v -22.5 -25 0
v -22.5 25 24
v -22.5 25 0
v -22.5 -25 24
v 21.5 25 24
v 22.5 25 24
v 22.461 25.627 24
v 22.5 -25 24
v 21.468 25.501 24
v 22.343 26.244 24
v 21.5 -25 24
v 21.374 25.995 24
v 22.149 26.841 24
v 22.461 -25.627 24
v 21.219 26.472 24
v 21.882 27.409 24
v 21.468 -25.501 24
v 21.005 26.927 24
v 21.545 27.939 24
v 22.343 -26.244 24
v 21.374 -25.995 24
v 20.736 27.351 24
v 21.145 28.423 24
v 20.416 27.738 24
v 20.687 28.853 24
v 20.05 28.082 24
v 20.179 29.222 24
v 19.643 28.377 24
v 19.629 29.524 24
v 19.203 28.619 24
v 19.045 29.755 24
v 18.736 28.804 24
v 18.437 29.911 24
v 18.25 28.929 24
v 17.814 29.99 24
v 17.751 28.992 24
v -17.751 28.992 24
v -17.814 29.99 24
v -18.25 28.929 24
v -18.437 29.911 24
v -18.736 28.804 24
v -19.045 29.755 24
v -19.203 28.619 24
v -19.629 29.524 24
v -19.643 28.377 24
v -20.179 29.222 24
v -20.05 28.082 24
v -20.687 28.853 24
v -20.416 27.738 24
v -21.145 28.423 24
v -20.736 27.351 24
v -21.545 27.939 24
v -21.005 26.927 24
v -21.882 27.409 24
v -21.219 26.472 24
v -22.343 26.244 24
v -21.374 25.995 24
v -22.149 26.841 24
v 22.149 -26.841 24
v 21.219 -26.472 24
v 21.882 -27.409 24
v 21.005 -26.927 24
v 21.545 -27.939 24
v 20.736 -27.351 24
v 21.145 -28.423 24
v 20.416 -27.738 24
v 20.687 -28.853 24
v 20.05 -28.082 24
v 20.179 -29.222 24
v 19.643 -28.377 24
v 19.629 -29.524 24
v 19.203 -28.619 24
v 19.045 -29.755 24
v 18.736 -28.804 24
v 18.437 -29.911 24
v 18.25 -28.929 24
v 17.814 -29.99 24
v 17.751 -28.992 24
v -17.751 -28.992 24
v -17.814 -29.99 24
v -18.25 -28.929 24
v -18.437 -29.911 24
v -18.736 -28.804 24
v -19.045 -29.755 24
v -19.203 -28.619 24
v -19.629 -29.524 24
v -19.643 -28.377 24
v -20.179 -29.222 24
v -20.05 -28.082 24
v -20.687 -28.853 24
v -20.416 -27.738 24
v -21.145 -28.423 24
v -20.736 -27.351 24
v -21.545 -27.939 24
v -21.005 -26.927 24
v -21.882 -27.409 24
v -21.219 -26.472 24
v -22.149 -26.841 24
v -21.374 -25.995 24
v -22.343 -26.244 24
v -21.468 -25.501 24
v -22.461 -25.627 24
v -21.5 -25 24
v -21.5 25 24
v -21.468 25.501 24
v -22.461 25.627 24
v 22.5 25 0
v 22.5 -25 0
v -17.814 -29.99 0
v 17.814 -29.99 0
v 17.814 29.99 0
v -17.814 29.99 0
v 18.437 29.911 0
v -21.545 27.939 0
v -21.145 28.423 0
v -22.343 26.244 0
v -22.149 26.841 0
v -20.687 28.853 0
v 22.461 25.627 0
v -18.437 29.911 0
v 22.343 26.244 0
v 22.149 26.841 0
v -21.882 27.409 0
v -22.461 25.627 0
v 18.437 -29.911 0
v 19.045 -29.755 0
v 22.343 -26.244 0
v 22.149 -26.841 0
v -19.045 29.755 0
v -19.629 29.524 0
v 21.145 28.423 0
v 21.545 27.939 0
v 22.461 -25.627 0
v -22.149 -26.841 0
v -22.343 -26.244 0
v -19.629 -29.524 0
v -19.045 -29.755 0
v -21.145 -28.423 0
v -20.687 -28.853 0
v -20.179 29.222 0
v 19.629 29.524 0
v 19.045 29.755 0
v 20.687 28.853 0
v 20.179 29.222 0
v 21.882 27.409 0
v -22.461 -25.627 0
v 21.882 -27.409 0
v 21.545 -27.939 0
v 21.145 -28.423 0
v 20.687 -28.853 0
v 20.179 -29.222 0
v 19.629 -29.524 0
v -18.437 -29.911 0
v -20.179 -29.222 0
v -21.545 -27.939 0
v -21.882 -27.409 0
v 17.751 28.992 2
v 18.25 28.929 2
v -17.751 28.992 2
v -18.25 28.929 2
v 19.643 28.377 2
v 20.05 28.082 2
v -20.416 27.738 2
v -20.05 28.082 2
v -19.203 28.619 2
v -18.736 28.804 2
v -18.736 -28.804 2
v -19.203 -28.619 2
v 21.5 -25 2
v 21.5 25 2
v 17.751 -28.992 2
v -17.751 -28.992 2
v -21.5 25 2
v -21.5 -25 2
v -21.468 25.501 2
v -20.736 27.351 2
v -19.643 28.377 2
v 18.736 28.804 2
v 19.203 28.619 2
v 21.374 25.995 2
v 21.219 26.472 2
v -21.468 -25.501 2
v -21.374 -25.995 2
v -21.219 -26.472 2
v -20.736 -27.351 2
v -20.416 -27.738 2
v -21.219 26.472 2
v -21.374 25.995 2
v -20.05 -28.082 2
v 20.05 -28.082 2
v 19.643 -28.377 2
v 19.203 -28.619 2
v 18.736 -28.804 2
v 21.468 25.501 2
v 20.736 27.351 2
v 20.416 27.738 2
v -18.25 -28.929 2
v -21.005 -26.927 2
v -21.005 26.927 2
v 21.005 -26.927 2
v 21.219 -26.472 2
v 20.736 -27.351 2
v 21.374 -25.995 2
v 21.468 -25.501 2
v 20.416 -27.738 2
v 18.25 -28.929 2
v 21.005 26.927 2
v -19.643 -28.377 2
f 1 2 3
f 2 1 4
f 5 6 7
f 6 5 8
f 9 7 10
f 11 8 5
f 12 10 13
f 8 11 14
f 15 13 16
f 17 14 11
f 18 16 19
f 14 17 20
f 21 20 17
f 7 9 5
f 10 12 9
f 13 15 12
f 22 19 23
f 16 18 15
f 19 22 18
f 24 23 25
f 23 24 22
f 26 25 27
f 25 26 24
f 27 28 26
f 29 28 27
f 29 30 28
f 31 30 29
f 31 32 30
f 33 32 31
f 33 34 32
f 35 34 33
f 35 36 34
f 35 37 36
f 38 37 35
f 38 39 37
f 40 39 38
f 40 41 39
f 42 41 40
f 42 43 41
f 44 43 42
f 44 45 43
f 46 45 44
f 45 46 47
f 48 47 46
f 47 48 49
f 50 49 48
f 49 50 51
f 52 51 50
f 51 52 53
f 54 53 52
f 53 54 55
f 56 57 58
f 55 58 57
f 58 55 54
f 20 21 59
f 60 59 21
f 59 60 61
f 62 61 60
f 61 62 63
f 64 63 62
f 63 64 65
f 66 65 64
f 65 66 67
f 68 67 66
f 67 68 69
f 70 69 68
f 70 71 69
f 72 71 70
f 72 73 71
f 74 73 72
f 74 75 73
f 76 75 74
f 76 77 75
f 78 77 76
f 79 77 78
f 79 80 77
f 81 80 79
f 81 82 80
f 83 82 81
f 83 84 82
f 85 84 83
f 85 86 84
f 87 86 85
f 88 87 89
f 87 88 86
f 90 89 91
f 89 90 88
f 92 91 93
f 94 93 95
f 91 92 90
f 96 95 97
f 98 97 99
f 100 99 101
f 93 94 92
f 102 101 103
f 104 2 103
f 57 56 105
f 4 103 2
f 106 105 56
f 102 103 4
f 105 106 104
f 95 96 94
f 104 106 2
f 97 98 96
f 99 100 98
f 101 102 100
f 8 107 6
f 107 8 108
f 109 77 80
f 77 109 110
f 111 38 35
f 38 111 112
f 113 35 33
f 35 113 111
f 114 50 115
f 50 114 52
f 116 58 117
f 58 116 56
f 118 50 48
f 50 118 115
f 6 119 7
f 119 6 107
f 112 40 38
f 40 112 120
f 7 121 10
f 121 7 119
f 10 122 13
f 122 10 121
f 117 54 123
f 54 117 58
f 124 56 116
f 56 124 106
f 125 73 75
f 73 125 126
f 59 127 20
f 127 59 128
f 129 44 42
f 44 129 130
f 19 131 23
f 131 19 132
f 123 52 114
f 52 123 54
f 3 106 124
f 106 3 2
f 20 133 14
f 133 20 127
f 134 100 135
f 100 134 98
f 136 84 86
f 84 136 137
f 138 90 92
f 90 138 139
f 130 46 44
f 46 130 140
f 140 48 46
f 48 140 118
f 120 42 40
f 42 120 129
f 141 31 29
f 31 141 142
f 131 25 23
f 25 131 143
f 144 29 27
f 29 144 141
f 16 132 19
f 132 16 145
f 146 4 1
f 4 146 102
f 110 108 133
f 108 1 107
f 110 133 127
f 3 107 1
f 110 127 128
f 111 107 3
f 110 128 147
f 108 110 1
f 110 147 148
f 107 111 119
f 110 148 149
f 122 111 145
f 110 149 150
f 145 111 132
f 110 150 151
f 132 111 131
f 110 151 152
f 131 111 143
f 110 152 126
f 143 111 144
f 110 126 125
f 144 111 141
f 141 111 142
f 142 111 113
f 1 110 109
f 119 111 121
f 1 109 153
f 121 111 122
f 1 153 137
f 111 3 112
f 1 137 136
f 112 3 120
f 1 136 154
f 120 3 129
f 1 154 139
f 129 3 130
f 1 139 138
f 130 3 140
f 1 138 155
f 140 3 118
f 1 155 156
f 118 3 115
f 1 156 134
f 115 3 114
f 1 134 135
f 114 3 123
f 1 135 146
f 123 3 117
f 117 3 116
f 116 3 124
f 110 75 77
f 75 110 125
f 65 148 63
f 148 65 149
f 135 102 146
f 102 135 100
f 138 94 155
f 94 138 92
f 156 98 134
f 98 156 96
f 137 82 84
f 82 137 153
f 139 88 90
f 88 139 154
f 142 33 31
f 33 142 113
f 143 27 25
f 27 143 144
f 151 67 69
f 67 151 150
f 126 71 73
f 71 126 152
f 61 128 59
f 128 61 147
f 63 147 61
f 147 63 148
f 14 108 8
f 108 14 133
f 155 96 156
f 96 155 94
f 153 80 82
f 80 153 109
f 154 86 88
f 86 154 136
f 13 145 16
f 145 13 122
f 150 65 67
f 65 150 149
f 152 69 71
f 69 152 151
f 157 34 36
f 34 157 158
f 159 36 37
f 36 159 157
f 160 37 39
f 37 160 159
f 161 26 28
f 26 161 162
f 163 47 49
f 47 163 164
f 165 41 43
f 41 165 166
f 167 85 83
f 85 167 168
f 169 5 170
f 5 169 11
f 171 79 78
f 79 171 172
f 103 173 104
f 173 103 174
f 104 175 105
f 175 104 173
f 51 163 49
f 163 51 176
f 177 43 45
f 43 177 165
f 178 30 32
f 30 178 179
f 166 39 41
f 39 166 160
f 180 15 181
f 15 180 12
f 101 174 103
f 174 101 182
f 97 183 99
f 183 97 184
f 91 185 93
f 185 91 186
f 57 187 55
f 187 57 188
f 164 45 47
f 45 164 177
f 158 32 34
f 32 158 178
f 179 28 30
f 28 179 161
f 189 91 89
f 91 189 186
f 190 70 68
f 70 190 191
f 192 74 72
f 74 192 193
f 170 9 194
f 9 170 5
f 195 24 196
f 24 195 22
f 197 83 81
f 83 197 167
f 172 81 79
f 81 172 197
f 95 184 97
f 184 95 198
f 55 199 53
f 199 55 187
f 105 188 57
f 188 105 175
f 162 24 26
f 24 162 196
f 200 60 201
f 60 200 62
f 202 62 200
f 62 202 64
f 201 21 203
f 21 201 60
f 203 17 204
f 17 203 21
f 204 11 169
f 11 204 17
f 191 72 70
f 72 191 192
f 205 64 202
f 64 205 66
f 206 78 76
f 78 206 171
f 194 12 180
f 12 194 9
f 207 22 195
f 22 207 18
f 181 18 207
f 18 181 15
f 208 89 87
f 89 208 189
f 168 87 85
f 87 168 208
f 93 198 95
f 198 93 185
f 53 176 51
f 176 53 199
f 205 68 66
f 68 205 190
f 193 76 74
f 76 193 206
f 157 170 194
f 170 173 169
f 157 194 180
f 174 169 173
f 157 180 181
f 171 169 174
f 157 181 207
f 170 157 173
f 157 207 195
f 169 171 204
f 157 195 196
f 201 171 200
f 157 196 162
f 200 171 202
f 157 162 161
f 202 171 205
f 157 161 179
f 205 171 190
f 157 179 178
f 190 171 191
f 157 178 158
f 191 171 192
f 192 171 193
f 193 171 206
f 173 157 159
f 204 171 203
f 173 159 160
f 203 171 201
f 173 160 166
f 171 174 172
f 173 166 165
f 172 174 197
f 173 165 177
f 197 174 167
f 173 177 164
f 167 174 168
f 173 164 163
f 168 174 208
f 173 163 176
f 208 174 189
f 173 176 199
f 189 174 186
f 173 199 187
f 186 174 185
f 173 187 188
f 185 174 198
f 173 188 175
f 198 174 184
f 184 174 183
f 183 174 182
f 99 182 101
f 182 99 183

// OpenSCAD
$fn = 50;


difference() {
	union() {
		hull() {
			translate(v = [-17.5000000000, 25.0000000000, 0]) {
				cylinder(h = 24, r = 5);
			}
			translate(v = [17.5000000000, 25.0000000000, 0]) {
				cylinder(h = 24, r = 5);
			}
			translate(v = [-17.5000000000, -25.0000000000, 0]) {
				cylinder(h = 24, r = 5);
			}
			translate(v = [17.5000000000, -25.0000000000, 0]) {
				cylinder(h = 24, r = 5);
			}
		}
	}
	union() {
		translate(v = [0, 0, 2]) {
			hull() {
				translate(v = [-17.5000000000, 25.0000000000, 0]) {
					cylinder(h = 22, r = 4);
				}
				translate(v = [17.5000000000, 25.0000000000, 0]) {
					cylinder(h = 22, r = 4);
				}
				translate(v = [-17.5000000000, -25.0000000000, 0]) {
					cylinder(h = 22, r = 4);
				}
				translate(v = [17.5000000000, -25.0000000000, 0]) {
					cylinder(h = 22, r = 4);
				}
			}
		}
	}
}
